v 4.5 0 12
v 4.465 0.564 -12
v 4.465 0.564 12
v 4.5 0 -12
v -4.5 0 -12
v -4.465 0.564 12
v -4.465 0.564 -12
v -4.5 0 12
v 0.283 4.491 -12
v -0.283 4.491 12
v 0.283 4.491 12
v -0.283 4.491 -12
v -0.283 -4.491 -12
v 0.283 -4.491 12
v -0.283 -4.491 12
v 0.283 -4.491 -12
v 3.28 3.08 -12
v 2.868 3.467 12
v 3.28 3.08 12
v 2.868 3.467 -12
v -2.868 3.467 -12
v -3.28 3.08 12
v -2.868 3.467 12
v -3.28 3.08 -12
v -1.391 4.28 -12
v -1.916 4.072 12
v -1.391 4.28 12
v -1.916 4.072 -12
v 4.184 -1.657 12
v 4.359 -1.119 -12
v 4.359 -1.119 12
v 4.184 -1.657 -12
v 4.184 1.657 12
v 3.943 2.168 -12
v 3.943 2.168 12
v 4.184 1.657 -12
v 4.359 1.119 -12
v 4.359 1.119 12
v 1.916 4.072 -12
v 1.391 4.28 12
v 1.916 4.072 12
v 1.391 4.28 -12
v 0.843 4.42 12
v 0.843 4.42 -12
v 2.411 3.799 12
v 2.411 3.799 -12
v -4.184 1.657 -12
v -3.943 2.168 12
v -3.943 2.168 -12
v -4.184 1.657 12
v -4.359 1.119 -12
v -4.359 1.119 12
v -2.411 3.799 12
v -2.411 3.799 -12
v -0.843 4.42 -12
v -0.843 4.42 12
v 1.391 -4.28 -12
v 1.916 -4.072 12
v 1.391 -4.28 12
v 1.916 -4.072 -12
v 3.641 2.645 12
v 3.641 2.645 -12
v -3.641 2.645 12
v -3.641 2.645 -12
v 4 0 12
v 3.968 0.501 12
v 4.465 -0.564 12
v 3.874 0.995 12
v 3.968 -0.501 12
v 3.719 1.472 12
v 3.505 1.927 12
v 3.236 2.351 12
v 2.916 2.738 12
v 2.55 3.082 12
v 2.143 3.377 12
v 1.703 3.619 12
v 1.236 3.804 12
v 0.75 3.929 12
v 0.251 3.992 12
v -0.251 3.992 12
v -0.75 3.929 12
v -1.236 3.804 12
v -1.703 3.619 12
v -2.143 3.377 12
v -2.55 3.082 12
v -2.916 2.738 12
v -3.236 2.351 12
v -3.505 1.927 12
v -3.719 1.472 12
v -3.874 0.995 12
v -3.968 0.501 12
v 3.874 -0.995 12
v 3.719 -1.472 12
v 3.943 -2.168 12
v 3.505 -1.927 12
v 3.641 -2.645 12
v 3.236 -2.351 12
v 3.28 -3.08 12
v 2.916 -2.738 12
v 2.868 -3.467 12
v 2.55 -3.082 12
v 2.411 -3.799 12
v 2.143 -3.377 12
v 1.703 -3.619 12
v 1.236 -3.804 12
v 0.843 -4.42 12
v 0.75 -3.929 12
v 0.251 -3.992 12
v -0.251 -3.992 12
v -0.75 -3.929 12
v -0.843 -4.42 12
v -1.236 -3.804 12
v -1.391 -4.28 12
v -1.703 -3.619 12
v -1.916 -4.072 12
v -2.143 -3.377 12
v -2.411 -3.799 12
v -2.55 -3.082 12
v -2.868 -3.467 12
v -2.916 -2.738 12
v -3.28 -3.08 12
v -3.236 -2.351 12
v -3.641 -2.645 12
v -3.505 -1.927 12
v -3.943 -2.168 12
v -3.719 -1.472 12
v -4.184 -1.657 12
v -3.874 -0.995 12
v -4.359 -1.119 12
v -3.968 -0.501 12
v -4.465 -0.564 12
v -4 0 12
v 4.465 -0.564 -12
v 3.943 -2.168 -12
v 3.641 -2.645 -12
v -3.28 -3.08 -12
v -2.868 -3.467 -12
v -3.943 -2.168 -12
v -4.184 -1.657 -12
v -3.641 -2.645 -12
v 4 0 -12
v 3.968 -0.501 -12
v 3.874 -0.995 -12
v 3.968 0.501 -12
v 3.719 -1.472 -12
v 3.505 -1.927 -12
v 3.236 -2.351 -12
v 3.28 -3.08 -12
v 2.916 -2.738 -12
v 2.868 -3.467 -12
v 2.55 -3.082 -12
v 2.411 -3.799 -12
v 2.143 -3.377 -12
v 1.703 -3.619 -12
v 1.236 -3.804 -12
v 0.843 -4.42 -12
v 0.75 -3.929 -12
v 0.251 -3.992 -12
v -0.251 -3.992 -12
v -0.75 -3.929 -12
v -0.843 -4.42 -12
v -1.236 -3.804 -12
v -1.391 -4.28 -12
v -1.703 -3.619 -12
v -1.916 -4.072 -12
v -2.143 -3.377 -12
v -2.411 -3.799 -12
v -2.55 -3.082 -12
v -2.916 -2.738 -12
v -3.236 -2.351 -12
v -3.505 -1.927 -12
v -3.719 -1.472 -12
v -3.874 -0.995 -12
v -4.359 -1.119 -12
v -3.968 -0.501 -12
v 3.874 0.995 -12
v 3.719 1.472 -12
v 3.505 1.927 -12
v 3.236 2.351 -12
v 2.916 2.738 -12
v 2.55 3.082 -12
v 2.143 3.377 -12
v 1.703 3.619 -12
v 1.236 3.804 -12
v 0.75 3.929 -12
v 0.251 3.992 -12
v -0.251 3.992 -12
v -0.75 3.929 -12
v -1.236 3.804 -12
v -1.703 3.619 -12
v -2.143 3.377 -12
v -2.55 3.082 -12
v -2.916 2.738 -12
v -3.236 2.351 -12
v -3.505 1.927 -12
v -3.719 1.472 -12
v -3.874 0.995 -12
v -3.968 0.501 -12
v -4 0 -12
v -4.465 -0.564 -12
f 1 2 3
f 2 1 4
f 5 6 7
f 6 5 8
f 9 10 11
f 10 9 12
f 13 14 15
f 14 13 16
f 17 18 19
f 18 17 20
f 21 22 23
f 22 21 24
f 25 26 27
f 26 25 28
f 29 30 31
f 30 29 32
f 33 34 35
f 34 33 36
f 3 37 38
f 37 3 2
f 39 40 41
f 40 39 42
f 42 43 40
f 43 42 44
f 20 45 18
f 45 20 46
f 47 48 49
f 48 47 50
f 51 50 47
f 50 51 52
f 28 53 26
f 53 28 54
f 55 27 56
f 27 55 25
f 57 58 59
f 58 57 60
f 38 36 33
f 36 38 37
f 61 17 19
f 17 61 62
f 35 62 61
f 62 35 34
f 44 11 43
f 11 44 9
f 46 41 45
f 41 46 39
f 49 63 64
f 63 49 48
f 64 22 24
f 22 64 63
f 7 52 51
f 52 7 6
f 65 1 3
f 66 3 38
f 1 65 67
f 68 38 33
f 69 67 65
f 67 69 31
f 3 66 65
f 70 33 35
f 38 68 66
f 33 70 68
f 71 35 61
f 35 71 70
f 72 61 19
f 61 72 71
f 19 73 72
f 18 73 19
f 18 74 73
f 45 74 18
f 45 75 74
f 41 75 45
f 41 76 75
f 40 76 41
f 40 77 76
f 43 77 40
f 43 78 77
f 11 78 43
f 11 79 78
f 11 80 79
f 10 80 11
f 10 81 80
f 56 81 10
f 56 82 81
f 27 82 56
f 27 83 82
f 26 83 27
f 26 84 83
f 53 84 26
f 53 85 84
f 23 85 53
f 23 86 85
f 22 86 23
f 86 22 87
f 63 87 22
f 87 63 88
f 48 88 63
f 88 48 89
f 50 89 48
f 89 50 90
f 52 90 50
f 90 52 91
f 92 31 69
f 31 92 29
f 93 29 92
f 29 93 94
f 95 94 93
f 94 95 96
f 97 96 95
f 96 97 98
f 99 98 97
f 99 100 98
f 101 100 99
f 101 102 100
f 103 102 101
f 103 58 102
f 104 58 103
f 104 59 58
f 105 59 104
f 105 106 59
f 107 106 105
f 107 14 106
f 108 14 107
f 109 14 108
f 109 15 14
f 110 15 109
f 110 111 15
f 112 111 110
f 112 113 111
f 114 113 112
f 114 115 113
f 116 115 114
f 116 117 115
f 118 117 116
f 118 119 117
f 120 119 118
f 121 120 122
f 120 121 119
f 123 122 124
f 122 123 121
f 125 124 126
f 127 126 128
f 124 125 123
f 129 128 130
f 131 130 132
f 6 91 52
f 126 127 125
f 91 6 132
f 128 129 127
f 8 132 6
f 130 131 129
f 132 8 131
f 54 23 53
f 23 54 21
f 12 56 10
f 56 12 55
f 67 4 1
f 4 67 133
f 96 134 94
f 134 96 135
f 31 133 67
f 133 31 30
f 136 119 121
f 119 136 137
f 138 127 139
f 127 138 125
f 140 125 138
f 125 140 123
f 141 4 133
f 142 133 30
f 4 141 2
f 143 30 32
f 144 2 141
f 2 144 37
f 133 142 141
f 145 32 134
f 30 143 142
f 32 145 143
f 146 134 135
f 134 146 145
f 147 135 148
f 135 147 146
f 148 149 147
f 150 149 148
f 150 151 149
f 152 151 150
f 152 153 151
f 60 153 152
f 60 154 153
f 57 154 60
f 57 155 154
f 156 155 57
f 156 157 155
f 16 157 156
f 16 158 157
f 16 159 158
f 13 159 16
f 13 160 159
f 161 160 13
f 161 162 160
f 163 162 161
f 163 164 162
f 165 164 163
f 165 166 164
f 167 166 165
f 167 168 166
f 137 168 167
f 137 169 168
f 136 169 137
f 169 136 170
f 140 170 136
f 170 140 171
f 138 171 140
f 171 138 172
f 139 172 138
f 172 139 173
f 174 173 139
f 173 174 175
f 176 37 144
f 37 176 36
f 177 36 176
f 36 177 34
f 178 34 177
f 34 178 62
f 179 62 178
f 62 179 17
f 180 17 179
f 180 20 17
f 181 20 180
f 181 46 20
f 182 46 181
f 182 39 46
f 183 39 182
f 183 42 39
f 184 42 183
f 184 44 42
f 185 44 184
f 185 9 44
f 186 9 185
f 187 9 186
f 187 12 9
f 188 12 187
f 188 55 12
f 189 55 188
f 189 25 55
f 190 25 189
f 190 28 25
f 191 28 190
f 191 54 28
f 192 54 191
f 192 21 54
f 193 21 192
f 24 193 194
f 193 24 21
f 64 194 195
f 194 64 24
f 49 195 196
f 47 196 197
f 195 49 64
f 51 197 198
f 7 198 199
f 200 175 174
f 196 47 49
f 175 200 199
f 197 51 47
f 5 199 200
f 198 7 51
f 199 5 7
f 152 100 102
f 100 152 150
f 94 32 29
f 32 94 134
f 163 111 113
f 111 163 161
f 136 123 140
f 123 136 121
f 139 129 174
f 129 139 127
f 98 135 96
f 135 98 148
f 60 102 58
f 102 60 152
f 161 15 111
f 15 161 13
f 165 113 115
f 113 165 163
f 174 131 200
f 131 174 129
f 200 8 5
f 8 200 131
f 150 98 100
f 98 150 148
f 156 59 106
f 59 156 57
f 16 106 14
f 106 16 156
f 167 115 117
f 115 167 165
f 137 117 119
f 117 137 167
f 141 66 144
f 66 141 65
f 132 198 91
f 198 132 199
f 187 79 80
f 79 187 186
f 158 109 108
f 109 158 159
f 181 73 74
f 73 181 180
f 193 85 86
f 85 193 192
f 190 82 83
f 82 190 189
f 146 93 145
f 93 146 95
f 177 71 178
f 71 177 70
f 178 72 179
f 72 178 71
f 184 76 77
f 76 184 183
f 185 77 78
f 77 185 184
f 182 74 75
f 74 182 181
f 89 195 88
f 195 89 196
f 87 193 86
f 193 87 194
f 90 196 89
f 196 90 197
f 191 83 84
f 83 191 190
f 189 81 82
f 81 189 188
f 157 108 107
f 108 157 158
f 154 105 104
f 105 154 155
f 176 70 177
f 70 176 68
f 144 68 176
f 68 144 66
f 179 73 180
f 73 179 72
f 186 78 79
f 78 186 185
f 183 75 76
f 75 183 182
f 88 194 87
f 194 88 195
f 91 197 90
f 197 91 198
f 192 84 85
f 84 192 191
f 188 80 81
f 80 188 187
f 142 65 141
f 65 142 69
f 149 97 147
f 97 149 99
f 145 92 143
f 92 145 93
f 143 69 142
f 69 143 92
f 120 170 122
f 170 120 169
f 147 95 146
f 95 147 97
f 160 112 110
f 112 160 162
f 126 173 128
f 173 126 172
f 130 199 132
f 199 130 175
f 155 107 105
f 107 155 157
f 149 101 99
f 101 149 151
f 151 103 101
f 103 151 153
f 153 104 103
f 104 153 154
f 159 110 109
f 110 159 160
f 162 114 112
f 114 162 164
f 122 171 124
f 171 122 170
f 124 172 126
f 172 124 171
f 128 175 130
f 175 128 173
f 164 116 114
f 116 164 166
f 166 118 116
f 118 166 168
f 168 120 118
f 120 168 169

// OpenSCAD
$fn = 50;


difference() {
	union() {
		translate(v = [0, 0, -12.0000000000]) {
			cylinder(h = 24, r = 4.5000000000);
		}
	}
	union() {
		translate(v = [0, 0, -100.0000000000]) {
			cylinder(h = 200, r = 4);
		}
	}
}
